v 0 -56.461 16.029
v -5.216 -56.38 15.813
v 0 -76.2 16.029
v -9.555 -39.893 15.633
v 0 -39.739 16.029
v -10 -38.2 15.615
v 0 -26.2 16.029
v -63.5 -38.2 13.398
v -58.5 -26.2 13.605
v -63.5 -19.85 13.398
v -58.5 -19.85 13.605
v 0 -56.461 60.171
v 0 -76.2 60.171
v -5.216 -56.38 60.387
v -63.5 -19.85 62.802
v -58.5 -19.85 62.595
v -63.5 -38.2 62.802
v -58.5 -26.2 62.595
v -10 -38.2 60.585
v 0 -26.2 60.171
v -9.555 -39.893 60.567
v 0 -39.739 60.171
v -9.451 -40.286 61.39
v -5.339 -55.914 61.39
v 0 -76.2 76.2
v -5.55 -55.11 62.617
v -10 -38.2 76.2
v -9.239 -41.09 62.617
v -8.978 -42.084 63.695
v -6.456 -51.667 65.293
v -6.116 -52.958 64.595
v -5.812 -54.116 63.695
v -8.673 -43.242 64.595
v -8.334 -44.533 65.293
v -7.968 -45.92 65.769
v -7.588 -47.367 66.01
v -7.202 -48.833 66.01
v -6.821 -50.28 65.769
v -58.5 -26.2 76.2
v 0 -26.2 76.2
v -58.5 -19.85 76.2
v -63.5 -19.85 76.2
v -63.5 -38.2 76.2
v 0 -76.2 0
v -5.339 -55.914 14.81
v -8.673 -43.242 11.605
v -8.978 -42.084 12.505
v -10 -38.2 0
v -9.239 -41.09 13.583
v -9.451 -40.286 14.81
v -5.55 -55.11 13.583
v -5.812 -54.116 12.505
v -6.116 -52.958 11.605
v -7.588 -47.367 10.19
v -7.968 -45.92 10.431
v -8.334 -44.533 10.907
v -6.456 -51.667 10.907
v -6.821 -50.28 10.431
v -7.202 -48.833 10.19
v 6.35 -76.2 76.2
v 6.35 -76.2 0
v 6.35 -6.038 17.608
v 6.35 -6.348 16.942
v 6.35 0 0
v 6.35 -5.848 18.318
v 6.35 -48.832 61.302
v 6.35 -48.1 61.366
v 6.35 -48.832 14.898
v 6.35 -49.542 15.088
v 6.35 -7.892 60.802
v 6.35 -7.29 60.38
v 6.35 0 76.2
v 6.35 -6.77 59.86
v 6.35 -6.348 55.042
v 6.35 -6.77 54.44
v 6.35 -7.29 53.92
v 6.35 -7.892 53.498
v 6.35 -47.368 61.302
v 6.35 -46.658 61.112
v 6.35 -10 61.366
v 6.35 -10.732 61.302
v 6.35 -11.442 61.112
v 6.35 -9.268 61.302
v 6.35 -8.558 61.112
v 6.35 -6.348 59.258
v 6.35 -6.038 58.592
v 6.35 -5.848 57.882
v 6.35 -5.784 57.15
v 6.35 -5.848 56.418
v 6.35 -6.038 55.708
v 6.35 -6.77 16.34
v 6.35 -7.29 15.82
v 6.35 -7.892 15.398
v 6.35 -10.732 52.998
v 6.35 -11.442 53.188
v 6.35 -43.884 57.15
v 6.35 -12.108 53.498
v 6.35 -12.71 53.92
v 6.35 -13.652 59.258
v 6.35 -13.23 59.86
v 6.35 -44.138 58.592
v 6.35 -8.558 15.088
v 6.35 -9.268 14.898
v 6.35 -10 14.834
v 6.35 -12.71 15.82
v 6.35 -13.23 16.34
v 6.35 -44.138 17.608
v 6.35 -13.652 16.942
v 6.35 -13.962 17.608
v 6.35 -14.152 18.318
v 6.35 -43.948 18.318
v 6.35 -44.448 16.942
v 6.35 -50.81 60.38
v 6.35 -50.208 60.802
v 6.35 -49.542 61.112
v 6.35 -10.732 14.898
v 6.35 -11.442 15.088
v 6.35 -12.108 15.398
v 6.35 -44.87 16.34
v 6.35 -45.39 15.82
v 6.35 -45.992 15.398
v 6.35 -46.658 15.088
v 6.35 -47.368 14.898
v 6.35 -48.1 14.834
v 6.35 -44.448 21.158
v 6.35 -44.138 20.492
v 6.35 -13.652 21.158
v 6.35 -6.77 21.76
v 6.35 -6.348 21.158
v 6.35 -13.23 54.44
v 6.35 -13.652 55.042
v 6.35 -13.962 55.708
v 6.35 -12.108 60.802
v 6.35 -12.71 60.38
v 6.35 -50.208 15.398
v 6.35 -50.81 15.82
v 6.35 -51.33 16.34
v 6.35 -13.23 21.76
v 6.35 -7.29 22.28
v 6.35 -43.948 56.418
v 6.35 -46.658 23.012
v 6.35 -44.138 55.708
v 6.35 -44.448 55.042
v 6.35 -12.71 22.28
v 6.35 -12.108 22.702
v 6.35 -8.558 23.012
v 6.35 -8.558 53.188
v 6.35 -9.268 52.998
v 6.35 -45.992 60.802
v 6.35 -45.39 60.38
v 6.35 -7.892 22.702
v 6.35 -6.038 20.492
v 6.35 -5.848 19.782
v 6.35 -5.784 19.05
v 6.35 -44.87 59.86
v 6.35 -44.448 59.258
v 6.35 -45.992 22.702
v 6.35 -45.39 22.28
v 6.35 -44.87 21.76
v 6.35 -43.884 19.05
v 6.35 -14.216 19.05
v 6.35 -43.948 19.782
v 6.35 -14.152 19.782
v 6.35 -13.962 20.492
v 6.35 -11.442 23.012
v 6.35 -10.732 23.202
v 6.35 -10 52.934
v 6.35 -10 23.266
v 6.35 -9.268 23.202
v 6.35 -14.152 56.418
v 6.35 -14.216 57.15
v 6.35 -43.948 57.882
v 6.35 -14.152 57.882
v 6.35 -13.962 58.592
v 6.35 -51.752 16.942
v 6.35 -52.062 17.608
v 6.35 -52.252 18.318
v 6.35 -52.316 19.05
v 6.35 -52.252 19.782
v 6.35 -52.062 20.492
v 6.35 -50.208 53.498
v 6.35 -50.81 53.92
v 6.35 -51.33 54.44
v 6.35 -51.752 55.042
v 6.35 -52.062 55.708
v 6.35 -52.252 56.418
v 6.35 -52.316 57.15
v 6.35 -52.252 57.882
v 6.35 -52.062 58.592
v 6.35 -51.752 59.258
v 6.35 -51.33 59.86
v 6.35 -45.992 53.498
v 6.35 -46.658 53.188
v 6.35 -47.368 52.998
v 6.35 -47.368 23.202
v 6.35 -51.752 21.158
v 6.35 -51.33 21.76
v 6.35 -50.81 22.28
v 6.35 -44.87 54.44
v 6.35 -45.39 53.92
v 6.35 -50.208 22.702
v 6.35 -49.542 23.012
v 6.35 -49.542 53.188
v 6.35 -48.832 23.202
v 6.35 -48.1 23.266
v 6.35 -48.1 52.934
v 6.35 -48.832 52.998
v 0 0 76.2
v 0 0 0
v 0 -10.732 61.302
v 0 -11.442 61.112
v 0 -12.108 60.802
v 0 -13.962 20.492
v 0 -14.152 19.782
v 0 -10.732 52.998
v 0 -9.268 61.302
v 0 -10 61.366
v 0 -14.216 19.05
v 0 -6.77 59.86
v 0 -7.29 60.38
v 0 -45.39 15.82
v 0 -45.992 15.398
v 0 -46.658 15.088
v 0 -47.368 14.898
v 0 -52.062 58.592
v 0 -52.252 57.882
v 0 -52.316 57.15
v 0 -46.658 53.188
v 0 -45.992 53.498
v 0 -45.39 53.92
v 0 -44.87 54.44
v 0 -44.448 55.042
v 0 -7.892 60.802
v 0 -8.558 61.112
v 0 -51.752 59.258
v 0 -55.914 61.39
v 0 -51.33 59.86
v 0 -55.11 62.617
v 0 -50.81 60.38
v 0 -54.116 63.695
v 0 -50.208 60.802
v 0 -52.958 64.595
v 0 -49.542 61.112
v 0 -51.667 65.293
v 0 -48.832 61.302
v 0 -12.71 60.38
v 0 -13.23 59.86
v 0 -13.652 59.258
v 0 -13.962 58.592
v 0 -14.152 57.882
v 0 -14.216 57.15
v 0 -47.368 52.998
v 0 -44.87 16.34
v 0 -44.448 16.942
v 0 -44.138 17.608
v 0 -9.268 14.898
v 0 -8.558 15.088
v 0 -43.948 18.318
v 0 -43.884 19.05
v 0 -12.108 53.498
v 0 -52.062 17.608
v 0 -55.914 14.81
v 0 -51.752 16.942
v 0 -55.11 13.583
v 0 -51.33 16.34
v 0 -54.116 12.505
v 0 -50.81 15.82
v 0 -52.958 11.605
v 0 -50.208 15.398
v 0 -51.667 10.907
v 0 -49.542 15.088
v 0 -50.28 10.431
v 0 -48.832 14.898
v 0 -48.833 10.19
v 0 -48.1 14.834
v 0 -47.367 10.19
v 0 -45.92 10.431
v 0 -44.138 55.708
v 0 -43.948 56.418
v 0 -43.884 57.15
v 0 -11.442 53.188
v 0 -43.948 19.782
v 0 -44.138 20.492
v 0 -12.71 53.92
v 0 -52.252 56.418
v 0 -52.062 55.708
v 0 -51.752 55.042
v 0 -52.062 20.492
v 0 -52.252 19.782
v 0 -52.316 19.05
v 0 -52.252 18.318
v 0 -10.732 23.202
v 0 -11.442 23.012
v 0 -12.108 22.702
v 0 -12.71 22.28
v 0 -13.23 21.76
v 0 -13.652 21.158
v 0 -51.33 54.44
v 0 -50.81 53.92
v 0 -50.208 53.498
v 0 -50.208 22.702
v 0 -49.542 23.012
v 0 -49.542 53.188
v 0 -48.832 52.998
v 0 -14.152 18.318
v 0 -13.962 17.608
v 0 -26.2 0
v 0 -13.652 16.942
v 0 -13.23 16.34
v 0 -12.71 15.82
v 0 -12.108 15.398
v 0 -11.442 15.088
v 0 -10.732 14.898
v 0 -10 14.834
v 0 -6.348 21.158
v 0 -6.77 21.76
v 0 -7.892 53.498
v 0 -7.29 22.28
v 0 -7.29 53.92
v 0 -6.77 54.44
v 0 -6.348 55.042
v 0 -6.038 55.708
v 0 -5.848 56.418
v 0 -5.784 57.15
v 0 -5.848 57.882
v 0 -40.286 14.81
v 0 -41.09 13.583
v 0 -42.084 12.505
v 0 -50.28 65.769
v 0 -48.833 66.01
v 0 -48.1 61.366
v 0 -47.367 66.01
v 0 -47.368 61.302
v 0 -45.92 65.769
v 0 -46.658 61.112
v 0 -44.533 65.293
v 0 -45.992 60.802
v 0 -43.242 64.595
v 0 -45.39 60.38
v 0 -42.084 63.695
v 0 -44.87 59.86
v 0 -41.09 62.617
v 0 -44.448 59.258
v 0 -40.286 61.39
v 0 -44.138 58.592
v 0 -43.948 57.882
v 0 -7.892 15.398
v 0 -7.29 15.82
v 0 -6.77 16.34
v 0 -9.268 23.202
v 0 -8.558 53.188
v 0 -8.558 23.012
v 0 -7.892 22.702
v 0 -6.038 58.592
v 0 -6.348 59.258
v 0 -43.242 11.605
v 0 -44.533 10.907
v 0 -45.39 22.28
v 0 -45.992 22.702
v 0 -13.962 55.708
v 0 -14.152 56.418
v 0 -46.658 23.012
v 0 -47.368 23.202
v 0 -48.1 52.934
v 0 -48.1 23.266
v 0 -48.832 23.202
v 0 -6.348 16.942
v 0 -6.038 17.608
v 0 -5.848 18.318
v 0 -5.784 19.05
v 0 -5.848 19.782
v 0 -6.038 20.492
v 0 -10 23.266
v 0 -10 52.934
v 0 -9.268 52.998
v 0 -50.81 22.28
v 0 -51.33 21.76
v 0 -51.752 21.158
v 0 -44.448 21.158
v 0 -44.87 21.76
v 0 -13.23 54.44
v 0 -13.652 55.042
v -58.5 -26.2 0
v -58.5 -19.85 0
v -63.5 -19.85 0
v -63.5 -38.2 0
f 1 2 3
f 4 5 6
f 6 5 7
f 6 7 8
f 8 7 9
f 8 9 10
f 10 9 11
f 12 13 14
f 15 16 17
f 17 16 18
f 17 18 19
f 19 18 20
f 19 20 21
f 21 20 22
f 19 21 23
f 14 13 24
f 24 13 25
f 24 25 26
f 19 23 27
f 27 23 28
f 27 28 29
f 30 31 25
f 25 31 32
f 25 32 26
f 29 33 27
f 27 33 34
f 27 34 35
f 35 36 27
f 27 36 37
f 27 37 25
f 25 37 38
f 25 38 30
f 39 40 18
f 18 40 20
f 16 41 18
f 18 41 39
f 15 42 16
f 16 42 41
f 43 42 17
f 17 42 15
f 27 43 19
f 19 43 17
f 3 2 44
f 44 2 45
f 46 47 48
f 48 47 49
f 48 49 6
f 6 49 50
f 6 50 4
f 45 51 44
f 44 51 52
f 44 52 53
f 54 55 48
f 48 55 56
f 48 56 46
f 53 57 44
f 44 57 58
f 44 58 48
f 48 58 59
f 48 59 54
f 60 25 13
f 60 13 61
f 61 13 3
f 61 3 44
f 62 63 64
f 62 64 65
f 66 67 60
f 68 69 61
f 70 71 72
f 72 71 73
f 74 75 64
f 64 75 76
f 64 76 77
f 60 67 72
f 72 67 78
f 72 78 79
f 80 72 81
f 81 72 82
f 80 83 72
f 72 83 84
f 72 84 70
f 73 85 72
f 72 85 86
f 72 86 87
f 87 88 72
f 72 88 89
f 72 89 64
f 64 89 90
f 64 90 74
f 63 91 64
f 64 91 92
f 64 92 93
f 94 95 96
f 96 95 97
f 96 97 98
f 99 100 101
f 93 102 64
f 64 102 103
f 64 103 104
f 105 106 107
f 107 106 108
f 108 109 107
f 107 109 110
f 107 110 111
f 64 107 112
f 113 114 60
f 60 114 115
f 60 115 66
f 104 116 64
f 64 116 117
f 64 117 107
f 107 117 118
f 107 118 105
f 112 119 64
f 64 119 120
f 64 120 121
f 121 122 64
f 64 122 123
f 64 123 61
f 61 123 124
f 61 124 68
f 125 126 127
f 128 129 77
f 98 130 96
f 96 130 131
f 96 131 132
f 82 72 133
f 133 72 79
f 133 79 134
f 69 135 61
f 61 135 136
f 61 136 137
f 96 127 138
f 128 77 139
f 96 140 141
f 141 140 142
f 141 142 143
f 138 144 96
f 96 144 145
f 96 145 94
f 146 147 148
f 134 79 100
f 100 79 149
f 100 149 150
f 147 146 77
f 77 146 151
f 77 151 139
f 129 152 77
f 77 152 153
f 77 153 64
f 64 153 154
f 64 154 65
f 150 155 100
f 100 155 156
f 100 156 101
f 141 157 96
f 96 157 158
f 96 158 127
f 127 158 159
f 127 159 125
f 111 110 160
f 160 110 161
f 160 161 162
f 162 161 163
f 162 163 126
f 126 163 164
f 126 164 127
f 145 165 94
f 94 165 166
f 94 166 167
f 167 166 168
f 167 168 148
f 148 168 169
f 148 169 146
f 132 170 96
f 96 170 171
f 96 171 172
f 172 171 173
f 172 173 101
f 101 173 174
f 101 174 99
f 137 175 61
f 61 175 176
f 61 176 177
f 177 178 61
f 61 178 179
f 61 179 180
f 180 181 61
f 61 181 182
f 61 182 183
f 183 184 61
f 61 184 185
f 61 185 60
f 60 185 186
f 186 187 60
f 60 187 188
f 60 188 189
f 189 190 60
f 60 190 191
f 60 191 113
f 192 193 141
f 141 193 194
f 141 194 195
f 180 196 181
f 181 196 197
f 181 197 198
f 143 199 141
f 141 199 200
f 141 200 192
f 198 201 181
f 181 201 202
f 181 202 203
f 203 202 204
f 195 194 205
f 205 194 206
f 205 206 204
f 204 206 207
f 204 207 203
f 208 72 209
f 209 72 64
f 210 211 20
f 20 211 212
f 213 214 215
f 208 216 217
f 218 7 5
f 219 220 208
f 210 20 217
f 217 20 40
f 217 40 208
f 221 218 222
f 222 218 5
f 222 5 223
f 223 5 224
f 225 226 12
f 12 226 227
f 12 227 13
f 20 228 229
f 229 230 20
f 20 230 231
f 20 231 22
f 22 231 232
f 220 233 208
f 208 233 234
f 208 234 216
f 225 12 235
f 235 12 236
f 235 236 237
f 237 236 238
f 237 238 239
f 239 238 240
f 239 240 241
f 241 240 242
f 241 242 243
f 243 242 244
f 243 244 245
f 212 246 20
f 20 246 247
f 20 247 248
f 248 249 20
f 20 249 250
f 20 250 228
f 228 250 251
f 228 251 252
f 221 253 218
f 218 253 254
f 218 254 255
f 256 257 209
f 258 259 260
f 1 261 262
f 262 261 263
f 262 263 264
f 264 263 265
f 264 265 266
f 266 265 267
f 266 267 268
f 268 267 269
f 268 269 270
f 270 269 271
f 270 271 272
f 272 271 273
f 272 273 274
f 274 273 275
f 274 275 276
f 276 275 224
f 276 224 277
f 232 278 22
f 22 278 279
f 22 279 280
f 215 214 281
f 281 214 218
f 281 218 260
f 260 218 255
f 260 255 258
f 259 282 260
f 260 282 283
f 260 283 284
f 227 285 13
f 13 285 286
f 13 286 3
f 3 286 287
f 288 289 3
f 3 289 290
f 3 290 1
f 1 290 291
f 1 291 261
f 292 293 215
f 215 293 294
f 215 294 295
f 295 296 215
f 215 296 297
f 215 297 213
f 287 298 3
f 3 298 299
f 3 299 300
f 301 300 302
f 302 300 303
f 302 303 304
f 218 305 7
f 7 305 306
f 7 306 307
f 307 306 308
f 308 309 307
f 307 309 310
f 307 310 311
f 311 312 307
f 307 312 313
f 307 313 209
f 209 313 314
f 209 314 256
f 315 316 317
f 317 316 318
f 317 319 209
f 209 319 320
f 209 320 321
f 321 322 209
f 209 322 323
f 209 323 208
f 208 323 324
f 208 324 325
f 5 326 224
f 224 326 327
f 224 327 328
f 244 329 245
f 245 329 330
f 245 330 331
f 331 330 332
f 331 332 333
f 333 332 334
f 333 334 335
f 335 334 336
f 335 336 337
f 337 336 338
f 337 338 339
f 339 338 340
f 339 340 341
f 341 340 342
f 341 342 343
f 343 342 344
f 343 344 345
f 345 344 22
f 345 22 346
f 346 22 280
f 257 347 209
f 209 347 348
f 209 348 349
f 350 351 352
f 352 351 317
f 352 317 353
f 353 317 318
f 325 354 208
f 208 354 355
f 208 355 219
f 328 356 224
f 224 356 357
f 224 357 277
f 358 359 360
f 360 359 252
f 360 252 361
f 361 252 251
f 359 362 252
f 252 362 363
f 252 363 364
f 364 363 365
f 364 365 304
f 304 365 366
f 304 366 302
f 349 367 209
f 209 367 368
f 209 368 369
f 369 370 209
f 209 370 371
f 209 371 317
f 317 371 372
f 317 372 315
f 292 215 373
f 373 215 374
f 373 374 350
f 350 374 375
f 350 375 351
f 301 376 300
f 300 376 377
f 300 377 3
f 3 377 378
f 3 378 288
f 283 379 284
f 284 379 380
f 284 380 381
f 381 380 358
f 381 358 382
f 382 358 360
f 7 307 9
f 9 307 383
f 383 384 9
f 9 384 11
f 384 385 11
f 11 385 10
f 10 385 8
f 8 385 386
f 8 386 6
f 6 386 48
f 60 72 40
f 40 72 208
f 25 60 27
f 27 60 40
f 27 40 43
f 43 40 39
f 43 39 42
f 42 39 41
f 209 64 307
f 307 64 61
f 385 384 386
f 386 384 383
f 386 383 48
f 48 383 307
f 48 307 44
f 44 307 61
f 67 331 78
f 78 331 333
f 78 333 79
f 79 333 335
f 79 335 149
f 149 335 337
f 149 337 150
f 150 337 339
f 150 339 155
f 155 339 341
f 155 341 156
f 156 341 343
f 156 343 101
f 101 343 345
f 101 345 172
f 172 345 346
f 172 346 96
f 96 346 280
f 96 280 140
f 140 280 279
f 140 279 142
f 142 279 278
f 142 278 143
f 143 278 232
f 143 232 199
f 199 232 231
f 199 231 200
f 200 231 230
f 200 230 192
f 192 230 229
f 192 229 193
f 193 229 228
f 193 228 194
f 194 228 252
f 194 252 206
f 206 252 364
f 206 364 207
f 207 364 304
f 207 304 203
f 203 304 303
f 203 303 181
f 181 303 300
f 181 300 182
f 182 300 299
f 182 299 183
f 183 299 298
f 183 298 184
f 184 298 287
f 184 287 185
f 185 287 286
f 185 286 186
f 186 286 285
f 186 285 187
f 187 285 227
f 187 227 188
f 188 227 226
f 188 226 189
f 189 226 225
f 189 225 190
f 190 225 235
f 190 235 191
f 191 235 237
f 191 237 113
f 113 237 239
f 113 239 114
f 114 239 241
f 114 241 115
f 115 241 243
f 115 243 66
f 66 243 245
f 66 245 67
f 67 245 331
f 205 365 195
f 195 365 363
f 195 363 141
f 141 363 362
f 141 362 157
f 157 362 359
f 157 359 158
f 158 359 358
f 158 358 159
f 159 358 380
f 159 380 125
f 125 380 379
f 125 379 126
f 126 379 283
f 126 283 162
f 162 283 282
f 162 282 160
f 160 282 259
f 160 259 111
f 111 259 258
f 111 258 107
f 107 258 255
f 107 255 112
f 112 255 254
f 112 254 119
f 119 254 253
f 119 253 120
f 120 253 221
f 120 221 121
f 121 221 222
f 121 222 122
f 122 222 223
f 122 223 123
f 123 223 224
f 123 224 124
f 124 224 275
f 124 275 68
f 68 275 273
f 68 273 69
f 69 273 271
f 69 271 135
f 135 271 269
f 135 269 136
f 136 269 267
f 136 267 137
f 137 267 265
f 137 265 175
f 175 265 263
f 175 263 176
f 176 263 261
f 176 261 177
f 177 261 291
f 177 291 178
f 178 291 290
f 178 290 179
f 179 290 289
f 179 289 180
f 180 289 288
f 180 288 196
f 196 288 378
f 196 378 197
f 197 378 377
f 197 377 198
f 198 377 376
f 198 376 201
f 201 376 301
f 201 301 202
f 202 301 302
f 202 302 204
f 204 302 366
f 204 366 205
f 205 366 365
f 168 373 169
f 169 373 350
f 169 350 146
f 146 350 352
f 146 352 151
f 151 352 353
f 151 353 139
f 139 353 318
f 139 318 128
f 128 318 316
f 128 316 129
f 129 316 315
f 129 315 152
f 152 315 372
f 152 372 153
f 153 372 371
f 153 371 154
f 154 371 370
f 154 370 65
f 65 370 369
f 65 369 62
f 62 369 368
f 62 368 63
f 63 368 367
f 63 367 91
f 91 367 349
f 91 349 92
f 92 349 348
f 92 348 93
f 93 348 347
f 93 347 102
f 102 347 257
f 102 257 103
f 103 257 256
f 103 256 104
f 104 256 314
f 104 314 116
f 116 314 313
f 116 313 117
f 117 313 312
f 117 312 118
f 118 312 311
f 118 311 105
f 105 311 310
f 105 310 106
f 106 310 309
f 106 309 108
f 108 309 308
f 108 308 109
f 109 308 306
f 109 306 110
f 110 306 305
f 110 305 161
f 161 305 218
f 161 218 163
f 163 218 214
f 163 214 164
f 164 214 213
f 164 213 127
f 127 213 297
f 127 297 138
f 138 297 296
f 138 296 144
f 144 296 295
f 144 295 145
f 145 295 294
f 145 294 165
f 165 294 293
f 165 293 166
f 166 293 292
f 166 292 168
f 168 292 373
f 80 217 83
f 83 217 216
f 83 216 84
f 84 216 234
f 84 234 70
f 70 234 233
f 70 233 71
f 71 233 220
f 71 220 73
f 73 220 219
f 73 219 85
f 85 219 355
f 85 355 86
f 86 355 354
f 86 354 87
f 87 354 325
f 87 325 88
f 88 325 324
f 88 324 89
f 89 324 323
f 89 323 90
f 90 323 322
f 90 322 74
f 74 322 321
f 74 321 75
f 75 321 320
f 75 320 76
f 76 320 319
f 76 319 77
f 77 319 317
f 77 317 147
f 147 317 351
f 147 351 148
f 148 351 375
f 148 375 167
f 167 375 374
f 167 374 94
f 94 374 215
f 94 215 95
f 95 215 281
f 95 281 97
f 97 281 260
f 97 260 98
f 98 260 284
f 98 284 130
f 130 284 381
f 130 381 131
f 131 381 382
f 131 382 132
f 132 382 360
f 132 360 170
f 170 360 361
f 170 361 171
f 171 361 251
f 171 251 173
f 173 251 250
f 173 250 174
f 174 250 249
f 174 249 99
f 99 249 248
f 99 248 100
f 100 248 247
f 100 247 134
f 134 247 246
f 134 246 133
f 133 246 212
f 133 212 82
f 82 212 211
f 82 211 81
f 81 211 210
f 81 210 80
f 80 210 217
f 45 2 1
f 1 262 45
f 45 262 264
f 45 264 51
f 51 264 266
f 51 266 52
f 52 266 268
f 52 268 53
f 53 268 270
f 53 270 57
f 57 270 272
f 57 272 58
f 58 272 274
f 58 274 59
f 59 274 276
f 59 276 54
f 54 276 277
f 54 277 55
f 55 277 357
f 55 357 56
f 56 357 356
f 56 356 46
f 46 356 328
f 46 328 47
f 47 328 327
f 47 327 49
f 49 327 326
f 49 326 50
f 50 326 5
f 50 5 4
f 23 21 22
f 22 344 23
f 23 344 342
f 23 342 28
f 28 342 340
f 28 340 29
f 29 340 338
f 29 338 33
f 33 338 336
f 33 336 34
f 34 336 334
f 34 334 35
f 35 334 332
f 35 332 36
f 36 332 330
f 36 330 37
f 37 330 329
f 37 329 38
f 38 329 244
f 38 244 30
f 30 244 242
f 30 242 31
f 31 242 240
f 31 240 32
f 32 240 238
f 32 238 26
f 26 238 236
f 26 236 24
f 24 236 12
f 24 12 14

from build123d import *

# Parameters (mm, degrees)
BOSS_EXTRUDE1_DEPTH     = 76.2
SKETCH2_W               = 70
SKETCH2_H               = 43.942
CUT_EXTRUDE1_DEPTH      = 76.2
SKETCH3_R               = 4.2164
CUT_EXTRUDE2_DEPTH      = 6.35
CUT_EXTRUDE2_DEPTH_BACK = 58.5
SKETCH3_3_R             = 8.89
SKETCH3_3_R_2           = 4.2164
CUT_EXTRUDE3_DEPTH      = 10


with BuildPart() as part:
    # Sketch1 → Boss-Extrude1 (new body)
    with BuildSketch(Plane.XY):
        Polygon((6.35, 0), (0, 0), (0, -26.2), (-58.5, -26.2), (-58.5, -19.85), (-63.5, -19.85), (-63.5, -38.2), (-10, -38.2), (0, -76.2), (6.35, -76.2), align=None)
    extrude(amount=BOSS_EXTRUDE1_DEPTH)

    # Sketch2 → Cut-Extrude1 (cut)
    with BuildSketch(Plane(origin=(0, 0, 0), x_dir=(1, 0, 0), z_dir=(0, 1, 0))):
        Polygon((0, -16.129), (0, -16.029), (-70, -13.129), (-70, -16.129), align=None)
        with Locations((-35, -38.1)):
            Rectangle(SKETCH2_W, SKETCH2_H)
        Polygon((0, -60.171), (-70, -63.071), (-70, -60.071), (0, -60.071), align=None)
    extrude(amount=-CUT_EXTRUDE1_DEPTH, mode=Mode.SUBTRACT)

    # Sketch3 → Cut-Extrude2 (cut, two sides)
    with BuildSketch(Plane(origin=(0, 0, 0), x_dir=(0, 0, -1), z_dir=(1, 0, 0))) as cut_extrude2_sk:
        with Locations((-19.05, -10)):
            Circle(SKETCH3_R)
        with Locations((-57.15, -10)):
            Circle(SKETCH3_R)
        with Locations((-57.15, -48.1)):
            Circle(SKETCH3_R)
        with Locations((-19.05, -48.1)):
            Circle(SKETCH3_R)
    extrude(amount=CUT_EXTRUDE2_DEPTH, mode=Mode.SUBTRACT)
    extrude(cut_extrude2_sk.sketch, amount=-CUT_EXTRUDE2_DEPTH_BACK, mode=Mode.SUBTRACT)

    # Sketch3<3> → Cut-Extrude3 (cut)
    with BuildSketch(Plane(origin=(0, 0, 0), x_dir=(0, 0, -1), z_dir=(1, 0, 0))):
        with Locations((-19.05, -48.1)):
            Circle(SKETCH3_3_R)
        with Locations((-19.05, -48.1)):
            Circle(SKETCH3_3_R_2, mode=Mode.SUBTRACT)
        with Locations((-57.15, -48.1)):
            Circle(SKETCH3_3_R)
        with Locations((-57.15, -48.1)):
            Circle(SKETCH3_3_R_2, mode=Mode.SUBTRACT)
    extrude(amount=-CUT_EXTRUDE3_DEPTH, mode=Mode.SUBTRACT)


solid = part.part
